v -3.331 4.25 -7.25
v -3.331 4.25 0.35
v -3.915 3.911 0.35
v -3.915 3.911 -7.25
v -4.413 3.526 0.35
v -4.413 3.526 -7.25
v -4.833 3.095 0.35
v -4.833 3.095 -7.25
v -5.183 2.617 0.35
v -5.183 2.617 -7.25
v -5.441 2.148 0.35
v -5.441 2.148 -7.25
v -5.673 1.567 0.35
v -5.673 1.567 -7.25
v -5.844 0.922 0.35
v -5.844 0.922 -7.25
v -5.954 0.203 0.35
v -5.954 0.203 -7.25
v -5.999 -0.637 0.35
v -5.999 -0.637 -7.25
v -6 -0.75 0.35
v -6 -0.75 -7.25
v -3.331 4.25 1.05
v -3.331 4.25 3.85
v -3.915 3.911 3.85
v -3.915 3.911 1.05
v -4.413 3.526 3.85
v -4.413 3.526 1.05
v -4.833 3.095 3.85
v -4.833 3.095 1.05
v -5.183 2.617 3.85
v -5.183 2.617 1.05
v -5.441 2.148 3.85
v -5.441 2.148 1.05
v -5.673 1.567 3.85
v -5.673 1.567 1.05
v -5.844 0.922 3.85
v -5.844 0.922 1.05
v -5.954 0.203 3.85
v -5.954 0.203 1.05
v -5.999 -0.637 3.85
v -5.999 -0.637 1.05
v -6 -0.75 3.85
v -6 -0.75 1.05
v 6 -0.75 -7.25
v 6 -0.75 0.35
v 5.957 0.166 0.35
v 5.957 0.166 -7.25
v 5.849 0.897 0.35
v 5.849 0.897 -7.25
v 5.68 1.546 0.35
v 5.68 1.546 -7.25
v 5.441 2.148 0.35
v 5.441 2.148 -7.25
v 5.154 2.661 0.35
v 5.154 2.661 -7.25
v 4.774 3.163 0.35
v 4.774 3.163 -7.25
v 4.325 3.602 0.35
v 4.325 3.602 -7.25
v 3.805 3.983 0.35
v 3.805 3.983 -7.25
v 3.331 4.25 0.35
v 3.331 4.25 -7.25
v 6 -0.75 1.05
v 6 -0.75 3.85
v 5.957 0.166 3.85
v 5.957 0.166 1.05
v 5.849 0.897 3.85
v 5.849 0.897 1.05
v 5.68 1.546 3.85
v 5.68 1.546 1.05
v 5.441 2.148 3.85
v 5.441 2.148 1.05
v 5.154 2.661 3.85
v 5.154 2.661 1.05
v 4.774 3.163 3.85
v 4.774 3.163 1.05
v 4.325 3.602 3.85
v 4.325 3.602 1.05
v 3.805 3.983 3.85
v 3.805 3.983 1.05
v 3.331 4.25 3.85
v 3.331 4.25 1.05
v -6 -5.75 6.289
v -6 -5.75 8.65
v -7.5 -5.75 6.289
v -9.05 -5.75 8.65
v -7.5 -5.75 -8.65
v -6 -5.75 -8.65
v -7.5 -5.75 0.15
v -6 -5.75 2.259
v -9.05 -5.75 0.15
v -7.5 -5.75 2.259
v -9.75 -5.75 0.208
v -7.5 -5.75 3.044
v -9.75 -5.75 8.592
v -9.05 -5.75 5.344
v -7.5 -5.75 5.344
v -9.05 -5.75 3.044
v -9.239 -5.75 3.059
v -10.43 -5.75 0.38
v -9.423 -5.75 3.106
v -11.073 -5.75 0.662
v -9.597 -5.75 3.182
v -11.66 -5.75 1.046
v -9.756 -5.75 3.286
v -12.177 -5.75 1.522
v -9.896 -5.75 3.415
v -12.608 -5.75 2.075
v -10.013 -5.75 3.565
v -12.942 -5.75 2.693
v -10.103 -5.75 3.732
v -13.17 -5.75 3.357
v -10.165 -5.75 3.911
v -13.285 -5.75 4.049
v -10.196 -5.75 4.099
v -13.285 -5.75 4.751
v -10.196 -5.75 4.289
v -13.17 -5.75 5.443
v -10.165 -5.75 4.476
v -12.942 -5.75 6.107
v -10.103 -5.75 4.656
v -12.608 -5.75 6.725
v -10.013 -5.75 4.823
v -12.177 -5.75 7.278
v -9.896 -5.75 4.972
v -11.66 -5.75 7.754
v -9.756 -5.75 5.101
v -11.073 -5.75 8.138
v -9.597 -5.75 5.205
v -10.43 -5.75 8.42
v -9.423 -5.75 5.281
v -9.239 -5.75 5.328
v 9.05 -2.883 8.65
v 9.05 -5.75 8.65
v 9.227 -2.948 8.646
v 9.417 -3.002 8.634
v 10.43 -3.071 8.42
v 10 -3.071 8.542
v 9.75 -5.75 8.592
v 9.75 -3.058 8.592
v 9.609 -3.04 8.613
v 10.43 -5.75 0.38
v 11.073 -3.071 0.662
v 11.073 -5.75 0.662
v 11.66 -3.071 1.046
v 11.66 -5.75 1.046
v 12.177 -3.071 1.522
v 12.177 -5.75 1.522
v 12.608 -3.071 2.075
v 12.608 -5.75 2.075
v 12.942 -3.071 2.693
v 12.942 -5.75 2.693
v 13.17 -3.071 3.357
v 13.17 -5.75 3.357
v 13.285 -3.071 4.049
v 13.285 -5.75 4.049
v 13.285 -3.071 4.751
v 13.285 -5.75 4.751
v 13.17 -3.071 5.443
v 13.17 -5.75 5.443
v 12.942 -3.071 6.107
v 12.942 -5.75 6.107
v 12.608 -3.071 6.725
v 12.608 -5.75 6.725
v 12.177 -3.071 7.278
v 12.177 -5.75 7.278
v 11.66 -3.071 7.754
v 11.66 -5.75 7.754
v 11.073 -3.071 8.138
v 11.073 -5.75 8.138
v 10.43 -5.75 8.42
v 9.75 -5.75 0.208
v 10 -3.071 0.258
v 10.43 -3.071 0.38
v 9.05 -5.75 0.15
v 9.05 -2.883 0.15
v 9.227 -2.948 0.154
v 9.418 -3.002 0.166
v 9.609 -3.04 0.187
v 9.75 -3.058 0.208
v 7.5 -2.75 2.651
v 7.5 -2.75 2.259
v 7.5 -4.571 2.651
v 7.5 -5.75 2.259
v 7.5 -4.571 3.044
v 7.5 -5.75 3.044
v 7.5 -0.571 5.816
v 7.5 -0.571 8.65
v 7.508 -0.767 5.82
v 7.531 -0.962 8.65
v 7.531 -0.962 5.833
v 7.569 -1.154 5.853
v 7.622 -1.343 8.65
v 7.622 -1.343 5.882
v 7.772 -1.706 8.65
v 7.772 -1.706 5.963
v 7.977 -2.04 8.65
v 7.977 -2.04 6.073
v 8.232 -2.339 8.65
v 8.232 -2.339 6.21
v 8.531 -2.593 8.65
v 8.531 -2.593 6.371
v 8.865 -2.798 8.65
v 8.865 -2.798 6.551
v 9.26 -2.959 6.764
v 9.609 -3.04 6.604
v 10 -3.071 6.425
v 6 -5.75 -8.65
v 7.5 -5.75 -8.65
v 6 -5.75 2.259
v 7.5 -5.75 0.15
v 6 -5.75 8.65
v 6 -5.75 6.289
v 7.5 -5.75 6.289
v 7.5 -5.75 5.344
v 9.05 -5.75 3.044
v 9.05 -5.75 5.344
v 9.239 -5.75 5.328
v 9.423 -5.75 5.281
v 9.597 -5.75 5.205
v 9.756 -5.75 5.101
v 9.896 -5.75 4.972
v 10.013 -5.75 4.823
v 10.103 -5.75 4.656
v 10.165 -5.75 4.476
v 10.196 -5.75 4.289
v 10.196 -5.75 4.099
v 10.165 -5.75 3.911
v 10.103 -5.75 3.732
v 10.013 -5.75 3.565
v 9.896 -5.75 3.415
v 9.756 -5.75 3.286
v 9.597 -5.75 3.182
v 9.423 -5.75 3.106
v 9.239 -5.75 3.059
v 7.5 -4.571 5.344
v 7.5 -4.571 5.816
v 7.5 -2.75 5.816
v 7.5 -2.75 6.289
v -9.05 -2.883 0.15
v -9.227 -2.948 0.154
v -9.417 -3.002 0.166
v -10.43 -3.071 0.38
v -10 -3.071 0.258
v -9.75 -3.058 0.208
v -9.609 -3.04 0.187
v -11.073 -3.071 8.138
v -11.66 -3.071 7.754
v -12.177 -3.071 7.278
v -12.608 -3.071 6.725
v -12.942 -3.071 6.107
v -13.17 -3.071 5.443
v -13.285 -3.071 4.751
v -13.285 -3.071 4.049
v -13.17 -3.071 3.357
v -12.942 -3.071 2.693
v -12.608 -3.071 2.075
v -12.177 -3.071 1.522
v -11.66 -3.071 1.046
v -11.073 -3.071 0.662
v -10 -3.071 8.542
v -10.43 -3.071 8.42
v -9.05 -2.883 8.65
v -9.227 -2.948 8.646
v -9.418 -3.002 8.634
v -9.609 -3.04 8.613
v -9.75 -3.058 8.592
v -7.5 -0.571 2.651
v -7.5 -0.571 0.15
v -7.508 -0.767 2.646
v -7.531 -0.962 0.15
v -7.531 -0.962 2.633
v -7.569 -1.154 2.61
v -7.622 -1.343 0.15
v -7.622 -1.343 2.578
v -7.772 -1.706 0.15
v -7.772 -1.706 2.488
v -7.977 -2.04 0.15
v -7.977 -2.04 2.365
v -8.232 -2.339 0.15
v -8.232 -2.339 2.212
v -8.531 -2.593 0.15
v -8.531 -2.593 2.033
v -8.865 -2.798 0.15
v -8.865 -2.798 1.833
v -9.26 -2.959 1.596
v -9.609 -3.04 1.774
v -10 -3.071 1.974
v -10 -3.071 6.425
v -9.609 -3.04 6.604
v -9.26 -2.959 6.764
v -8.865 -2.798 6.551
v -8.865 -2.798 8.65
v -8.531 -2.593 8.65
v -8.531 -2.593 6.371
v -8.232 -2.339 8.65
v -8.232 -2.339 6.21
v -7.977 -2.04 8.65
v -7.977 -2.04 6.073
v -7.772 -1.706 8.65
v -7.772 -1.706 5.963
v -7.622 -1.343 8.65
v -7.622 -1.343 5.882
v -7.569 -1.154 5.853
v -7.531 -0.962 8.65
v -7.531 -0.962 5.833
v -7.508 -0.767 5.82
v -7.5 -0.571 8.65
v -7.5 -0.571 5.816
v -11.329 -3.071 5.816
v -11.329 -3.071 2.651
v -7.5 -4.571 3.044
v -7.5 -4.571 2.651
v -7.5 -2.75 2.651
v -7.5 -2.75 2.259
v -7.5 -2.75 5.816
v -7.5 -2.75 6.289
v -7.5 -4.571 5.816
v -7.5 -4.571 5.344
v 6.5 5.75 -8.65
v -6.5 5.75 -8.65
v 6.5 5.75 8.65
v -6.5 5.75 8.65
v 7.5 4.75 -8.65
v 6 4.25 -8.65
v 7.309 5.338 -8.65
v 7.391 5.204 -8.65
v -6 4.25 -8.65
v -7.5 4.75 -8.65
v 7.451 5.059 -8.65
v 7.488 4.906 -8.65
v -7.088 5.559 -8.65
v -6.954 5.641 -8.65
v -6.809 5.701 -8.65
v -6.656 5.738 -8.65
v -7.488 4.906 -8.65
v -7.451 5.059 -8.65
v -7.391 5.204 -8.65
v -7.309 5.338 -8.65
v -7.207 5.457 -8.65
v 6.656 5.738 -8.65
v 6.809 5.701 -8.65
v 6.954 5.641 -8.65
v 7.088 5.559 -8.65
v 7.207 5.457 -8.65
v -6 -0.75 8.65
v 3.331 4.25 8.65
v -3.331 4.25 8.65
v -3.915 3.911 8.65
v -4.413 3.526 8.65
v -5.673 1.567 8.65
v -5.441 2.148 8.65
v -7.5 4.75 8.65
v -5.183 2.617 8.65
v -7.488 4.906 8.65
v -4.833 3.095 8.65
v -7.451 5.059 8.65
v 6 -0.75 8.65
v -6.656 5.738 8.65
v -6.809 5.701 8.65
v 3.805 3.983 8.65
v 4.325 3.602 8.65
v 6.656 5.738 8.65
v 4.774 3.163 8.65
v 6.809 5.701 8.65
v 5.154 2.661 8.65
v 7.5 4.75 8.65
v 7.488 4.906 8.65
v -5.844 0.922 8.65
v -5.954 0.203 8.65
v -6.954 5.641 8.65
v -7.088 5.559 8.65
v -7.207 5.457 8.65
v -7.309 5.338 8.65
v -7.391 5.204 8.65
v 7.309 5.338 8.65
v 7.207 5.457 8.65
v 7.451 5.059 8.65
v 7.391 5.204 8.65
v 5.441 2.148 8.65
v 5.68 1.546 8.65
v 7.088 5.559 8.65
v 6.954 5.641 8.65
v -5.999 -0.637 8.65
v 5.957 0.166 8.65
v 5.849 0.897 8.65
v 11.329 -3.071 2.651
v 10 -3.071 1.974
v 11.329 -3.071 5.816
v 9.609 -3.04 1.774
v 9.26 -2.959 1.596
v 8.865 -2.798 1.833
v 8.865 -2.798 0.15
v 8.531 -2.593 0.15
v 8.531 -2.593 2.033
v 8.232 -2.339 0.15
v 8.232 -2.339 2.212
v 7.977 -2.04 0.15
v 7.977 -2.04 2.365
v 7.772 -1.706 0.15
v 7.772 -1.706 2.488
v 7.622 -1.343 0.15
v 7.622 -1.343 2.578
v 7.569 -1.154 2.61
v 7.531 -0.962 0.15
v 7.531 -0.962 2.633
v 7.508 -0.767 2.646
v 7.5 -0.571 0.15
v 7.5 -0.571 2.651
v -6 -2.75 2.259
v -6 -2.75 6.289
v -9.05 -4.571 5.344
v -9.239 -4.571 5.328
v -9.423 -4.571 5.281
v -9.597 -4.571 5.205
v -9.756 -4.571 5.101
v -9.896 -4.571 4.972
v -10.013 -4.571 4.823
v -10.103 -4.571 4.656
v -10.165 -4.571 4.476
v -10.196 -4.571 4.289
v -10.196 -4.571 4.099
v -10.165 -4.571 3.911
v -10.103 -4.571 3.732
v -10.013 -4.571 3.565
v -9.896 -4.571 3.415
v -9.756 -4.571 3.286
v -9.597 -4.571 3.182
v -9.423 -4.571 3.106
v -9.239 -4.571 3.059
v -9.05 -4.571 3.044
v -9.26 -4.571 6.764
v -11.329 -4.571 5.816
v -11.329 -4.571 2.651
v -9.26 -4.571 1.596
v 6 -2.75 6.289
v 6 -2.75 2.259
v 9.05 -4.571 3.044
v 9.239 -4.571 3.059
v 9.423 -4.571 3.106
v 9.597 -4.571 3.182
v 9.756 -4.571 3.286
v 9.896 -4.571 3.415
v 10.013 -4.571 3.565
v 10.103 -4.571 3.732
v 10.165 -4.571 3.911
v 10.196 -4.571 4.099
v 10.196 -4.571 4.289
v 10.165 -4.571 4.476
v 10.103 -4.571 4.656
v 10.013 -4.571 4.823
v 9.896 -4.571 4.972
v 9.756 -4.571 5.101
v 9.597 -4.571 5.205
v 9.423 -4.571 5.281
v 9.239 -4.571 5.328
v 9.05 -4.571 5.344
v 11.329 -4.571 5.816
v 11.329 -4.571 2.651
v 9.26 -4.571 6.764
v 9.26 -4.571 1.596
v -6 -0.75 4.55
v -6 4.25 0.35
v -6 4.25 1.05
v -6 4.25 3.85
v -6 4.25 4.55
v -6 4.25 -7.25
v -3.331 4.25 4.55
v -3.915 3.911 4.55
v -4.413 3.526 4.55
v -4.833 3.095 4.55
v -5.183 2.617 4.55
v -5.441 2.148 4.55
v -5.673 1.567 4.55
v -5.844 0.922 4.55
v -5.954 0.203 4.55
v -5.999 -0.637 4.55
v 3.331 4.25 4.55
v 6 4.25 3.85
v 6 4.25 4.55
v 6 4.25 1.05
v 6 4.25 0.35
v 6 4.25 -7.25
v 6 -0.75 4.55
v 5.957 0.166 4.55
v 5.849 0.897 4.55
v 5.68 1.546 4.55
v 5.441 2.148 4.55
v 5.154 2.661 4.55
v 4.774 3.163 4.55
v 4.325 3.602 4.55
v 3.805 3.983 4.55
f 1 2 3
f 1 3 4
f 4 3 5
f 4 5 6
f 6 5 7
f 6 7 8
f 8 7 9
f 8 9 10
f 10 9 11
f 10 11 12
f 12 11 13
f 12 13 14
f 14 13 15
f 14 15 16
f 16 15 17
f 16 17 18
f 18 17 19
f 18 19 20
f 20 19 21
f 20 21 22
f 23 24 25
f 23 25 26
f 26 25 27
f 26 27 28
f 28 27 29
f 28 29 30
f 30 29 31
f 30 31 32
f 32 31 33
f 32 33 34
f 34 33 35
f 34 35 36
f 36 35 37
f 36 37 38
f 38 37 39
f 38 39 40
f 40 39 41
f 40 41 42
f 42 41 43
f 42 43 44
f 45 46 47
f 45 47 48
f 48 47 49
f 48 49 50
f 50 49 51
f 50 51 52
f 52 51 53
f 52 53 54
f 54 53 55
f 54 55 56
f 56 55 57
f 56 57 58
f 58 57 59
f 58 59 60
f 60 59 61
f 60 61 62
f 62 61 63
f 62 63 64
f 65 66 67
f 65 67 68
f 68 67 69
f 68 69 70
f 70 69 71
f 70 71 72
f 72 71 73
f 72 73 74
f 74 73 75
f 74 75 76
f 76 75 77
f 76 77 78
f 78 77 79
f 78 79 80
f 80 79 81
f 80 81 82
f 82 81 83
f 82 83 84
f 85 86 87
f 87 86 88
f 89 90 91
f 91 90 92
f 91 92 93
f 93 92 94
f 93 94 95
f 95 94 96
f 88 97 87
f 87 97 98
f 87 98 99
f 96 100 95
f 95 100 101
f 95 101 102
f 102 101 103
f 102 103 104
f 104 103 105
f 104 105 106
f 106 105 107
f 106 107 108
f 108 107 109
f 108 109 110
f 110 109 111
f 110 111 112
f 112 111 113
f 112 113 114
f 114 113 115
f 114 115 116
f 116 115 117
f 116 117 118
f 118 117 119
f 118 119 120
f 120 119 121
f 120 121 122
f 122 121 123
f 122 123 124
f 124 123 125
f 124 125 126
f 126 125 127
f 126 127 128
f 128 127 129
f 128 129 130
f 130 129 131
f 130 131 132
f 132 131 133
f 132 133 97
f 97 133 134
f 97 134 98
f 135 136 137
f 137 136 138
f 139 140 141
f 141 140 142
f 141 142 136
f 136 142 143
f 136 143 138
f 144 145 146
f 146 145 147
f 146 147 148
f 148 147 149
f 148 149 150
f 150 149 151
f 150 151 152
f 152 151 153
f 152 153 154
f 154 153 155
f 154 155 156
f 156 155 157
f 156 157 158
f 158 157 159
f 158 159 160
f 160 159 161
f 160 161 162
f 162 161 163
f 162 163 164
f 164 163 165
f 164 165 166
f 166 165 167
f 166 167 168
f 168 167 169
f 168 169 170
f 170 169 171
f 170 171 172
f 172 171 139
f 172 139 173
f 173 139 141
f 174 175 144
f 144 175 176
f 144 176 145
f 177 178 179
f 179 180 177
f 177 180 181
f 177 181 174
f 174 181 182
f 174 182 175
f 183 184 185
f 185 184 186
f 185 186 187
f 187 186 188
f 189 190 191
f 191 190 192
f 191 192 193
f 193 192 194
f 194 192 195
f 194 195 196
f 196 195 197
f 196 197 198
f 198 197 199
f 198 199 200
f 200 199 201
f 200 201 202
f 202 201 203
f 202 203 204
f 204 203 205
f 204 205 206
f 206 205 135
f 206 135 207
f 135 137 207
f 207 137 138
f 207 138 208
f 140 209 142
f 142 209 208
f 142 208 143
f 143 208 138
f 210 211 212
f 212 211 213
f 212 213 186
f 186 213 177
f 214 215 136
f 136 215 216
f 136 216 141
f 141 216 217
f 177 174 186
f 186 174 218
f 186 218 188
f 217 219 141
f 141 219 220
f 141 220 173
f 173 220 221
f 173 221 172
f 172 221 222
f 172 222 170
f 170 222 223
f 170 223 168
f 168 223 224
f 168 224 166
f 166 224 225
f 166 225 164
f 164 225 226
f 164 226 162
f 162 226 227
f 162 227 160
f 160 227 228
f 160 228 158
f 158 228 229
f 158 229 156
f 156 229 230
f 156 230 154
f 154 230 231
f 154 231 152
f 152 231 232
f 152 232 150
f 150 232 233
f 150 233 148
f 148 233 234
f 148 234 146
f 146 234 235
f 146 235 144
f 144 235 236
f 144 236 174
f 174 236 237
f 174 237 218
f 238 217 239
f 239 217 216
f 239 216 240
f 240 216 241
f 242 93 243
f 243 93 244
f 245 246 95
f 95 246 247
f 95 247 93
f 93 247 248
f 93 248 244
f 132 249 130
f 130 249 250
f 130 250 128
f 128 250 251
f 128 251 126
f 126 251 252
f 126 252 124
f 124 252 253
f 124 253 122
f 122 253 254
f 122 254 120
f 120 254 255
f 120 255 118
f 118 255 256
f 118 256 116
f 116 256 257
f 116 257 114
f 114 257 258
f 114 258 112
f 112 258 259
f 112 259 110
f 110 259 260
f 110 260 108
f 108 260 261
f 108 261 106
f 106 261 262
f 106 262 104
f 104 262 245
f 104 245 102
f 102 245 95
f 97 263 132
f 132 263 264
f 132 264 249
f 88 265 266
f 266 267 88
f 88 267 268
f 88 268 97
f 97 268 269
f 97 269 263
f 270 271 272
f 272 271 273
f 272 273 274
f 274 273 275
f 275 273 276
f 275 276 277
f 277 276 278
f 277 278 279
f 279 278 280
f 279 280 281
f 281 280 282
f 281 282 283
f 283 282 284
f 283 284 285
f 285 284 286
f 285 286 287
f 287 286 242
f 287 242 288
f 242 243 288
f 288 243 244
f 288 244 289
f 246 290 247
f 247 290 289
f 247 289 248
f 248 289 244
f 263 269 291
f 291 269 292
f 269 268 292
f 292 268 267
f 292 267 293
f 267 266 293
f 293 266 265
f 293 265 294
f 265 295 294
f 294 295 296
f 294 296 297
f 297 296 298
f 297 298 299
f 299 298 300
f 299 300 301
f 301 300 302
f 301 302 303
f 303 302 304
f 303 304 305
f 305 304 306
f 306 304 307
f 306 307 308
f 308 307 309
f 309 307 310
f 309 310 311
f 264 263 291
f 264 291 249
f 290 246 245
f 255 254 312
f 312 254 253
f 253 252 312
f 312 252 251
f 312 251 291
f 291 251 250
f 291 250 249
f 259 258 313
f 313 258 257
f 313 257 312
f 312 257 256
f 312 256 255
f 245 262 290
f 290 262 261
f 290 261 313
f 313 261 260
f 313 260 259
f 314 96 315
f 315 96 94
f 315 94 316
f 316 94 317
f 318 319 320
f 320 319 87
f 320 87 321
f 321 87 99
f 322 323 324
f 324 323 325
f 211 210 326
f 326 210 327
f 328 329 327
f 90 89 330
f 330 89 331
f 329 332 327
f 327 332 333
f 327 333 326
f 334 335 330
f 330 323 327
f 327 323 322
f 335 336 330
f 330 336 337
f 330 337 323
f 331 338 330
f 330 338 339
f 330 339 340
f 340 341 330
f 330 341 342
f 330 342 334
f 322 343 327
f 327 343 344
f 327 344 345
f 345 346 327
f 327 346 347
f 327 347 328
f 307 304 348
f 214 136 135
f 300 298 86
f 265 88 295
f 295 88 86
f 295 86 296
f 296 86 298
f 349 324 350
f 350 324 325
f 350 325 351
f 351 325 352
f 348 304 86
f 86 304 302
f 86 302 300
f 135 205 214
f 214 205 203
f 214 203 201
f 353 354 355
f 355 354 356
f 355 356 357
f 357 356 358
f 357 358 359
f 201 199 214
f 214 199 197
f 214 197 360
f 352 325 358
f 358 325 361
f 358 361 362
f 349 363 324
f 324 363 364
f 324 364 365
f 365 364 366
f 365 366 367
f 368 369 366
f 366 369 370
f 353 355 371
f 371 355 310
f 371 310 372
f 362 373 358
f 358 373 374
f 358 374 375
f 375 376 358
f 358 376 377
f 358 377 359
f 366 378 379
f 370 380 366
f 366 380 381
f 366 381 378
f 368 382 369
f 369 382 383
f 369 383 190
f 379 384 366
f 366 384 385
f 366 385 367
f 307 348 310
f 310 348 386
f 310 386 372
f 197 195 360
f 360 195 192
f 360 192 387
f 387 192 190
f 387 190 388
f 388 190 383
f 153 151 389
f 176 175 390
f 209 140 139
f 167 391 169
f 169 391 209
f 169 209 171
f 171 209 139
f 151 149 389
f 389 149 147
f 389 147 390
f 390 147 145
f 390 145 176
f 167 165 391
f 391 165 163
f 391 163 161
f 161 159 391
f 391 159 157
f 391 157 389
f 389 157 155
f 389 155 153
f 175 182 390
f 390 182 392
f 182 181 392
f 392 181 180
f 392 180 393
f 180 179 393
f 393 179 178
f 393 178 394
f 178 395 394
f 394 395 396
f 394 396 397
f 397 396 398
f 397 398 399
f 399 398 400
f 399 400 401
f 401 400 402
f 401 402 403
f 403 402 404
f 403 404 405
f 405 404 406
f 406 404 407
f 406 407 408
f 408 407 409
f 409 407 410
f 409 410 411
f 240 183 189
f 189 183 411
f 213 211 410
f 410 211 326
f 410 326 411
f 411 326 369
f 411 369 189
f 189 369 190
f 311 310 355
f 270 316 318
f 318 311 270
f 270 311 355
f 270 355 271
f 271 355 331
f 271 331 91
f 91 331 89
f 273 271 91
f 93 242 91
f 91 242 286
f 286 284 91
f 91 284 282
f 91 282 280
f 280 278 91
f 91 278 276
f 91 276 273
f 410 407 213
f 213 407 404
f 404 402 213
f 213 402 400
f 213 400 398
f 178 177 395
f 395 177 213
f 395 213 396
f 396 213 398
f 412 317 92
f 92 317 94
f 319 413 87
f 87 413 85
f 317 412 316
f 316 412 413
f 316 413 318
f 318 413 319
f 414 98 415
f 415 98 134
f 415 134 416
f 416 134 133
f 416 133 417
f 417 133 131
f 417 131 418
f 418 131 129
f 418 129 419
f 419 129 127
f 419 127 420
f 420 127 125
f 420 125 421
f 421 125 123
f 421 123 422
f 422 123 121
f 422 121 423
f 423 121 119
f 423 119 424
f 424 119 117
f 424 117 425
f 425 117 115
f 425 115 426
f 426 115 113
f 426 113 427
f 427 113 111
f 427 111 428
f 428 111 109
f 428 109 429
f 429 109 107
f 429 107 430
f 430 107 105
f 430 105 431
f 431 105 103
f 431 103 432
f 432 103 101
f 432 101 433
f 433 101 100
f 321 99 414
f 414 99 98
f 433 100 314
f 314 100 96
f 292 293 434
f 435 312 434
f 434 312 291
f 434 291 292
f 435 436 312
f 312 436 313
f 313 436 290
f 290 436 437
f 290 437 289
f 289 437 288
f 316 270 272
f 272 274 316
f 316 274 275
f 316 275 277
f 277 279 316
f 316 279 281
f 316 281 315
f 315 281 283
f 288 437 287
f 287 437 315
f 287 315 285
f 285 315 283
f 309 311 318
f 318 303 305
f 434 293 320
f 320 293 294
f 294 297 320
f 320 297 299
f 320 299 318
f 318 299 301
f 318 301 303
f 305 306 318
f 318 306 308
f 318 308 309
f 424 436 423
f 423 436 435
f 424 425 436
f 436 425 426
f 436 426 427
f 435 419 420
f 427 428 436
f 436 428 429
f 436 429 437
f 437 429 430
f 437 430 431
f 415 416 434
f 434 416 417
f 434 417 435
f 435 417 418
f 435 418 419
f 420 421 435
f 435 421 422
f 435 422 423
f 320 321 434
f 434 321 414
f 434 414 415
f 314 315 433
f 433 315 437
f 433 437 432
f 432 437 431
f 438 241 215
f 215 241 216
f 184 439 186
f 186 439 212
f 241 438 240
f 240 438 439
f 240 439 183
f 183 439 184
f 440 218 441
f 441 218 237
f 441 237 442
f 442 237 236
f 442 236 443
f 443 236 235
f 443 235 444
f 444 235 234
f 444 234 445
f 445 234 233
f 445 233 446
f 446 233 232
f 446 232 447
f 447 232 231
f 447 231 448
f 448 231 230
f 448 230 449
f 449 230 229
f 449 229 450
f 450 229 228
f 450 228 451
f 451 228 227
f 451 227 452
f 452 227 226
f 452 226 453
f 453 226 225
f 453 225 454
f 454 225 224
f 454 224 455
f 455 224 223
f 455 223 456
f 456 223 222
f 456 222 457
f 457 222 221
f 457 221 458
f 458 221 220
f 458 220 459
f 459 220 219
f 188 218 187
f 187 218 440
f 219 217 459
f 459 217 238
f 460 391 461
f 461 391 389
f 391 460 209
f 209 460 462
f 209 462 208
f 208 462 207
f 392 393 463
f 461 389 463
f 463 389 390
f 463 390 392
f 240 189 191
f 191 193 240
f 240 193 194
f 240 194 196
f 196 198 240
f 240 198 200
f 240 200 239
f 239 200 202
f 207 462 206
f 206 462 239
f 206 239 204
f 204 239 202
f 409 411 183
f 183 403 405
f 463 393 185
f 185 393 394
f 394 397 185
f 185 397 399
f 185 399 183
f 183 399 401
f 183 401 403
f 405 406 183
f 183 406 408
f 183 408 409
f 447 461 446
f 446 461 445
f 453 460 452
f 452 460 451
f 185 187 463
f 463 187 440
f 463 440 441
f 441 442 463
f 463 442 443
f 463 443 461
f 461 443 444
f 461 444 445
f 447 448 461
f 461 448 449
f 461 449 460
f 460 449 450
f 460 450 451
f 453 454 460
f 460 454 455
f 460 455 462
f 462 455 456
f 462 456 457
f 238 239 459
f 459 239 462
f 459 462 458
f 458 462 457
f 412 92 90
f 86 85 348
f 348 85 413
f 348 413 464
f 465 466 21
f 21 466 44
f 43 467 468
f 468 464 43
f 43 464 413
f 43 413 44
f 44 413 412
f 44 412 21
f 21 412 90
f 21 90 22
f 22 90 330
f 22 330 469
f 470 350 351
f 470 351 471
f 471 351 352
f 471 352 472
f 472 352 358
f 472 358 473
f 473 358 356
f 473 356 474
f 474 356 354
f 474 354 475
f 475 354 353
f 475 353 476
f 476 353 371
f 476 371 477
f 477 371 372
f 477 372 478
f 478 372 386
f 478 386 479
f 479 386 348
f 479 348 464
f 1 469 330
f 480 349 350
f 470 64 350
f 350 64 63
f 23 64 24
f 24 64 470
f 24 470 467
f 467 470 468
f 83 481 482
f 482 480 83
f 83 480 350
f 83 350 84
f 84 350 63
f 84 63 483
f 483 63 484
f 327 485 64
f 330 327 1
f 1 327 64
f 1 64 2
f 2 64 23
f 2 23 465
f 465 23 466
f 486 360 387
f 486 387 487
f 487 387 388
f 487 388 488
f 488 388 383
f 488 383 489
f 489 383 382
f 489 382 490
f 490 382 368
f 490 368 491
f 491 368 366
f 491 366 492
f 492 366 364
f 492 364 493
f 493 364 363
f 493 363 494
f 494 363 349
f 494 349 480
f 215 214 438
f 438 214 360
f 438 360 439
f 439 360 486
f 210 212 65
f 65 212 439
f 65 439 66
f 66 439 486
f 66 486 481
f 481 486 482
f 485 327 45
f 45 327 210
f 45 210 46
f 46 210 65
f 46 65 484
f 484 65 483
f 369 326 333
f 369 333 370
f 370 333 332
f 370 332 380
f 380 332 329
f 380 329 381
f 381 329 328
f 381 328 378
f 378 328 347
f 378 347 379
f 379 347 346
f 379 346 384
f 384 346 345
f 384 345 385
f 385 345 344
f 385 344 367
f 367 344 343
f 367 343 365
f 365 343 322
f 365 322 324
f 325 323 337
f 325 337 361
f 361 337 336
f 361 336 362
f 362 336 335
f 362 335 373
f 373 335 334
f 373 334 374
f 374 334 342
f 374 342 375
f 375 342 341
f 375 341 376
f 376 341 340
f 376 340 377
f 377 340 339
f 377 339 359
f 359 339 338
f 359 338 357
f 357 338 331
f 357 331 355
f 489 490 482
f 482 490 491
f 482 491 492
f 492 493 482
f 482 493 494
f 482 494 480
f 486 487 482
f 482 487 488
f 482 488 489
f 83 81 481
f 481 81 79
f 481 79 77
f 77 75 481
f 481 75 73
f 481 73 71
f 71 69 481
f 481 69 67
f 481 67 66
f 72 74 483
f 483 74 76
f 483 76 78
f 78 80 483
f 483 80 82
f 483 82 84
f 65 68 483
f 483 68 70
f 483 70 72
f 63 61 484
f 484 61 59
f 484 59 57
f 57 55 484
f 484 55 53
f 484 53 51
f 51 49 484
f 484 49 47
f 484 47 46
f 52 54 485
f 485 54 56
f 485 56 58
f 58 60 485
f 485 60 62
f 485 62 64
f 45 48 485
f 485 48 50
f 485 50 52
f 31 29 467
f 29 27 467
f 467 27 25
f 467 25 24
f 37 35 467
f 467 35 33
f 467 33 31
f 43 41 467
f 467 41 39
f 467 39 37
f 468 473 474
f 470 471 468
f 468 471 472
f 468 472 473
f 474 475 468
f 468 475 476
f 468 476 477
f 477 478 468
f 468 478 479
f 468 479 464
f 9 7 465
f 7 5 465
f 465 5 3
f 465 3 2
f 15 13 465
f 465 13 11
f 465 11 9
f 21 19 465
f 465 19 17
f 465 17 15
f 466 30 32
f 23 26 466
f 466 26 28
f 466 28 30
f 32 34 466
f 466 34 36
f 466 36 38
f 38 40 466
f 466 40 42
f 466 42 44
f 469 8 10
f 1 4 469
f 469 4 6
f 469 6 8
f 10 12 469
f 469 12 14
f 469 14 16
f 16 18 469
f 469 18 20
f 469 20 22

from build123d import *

# Parameters (mm, degrees)
BOSS_EXTRUDE1_DEPTH      = 8.65
BOSS_EXTRUDE1_DEPTH_BACK = 8.65
SKETCH2_W                = 26.6
SKETCH2_H                = 11.5
CUT_EXTRUDE1_DEPTH       = 23.566402017
SKETCH4_W                = 5.8
SKETCH4_H                = 8.8
CUT_EXTRUDE2_DEPTH       = 20.594961087
SKETCH5_W                = 1.5
SKETCH5_H                = 4.03
CUT_EXTRUDE3_DEPTH       = 3
CUT_EXTRUDE4_DEPTH       = 1.4
CUT_EXTRUDE5_START       = -5.1792
CUT_EXTRUDE5_DEPTH       = 4
FILLET3_START            = -7
FILLET3_DEPTH            = 6.429203884
FILLET4_START            = -7
FILLET4_DEPTH            = 6.429203884
CUT_EXTRUDE6_DEPTH       = 23.566402102
FILLET5_R                = 1
SKETCH12_W               = 12
SKETCH12_H               = 1.4
SKETCH12_H_2             = 0.7
CUT_EXTRUDE7_DEPTH       = 10


with BuildPart() as part:
    # Sketch2 → Boss-Extrude1 (new, two sides: drawn at the far end of the back side and taken through both)
    with BuildSketch(Plane.XY.offset(-BOSS_EXTRUDE1_DEPTH_BACK)):
        Rectangle(SKETCH2_W, SKETCH2_H)
    extrude(amount=BOSS_EXTRUDE1_DEPTH + BOSS_EXTRUDE1_DEPTH_BACK)

    # Sketch3 → Cut-Extrude1 (cut, through all)
    with BuildSketch(Plane.XY.offset(8.65)):
        with BuildLine():
            Line((-7.5, 5.75), (-7.5, -0.570796116))
            ThreePointArc((-7.5, -0.570796116), (-8.232233047, -2.338563069), (-10, -3.070796116))
            Line((-10, -3.070796116), (-13.3, -3.070796116))
            Line((-13.3, -3.070796116), (-13.3, 5.75))
            Line((-13.3, 5.75), (-7.5, 5.75))
        make_face()
        with BuildLine():
            Line((7.5, 5.75), (7.5, -0.570796116))
            ThreePointArc((7.5, -0.570796116), (8.232233047, -2.338563069), (10, -3.070796116))
            Line((10, -3.070796116), (13.3, -3.070796116))
            Line((13.3, -3.070796116), (13.3, 5.75))
            Line((13.3, 5.75), (7.5, 5.75))
        make_face()
    extrude(amount=-CUT_EXTRUDE1_DEPTH, mode=Mode.SUBTRACT)

    # Sketch4 → Cut-Extrude2 (cut, through all)
    with BuildSketch(Plane.XZ.offset(5.75)):
        with Locations((-10.4, -4.25)):
            Rectangle(SKETCH4_W, SKETCH4_H)
        with Locations((10.4, -4.25)):
            Rectangle(SKETCH4_W, SKETCH4_H)
    extrude(amount=-CUT_EXTRUDE2_DEPTH, mode=Mode.SUBTRACT)

    # Sketch5 → Cut-Extrude3 (cut)
    with BuildSketch(Plane.XZ.offset(5.75)):
        with Locations((-6.75, 4.27363419)):
            Rectangle(SKETCH5_W, SKETCH5_H)
    cut_extrude3 = extrude(amount=-CUT_EXTRUDE3_DEPTH, mode=Mode.SUBTRACT)

    # Sketch5<3> → Cut-Extrude4 (cut)
    with BuildSketch(Plane.XZ.offset(5.75)):
        with BuildLine():
            ThreePointArc((-9.05, 3.04359822), (-10.2, 4.19359822), (-9.05, 5.34359822))
            Line((-9.05, 5.34359822), (-7.5, 5.34359822))
            Line((-7.5, 5.34359822), (-7.5, 3.04359822))
            Line((-7.5, 3.04359822), (-9.05, 3.04359822))
        make_face()
    cut_extrude4 = extrude(amount=-CUT_EXTRUDE4_DEPTH, mode=Mode.SUBTRACT)

    # Sketch8 → Cut-Extrude5 (cut)
    with BuildSketch(Plane.XZ.offset(5.75).offset(CUT_EXTRUDE5_START)):
        Polygon((-11.329479063, 5.816116205), (-11.329479063, 2.651116205), (-9.259735425, 1.596272871), (-7.5, 2.651116205), (-7.5, 5.816116205), (-9.259735425, 6.763868097), align=None)
    cut_extrude5 = extrude(amount=CUT_EXTRUDE5_DEPTH, mode=Mode.SUBTRACT)

    # Fillet3: read off the stored shape, not the designer's step
    # Fillet3 outline → Fillet3 (cut)
    with BuildSketch(Plane(origin=(0, 0, 0), x_dir=(1, 0, 0), z_dir=(0, 1, 0)).offset(FILLET3_START)):
        with BuildLine():
            Line((-13.3, -8.65), (-9.05, -8.65))
            ThreePointArc((-9.05, -8.65), (-12.05520382, -7.40520382), (-13.3, -4.4))
            Line((-13.3, -4.4), (-13.3, -8.65))
        make_face()
        with BuildLine():
            Line((-13.3, -0.15), (-13.3, -4.4))
            ThreePointArc((-13.3, -4.4), (-12.05520382, -1.39479618), (-9.05, -0.15))
            Line((-9.05, -0.15), (-13.3, -0.15))
        make_face()
    extrude(amount=FILLET3_DEPTH, mode=Mode.SUBTRACT)

    # Mirror4: Cut-Extrude3, Cut-Extrude4, Cut-Extrude5 across plane
    add(cut_extrude3.mirror(Plane(origin=(0, 0, 0), x_dir=(0, 0, 1), z_dir=(1, 0, 0))), mode=Mode.SUBTRACT)
    add(cut_extrude4.mirror(Plane(origin=(0, 0, 0), x_dir=(0, 0, 1), z_dir=(1, 0, 0))), mode=Mode.SUBTRACT)
    add(cut_extrude5.mirror(Plane(origin=(0, 0, 0), x_dir=(0, 0, 1), z_dir=(1, 0, 0))), mode=Mode.SUBTRACT)

    # Fillet4: read off the stored shape, not the designer's step
    # Fillet4 outline → Fillet4 (cut)
    with BuildSketch(Plane(origin=(0, 0, 0), x_dir=(1, 0, 0), z_dir=(0, 1, 0)).offset(FILLET4_START)):
        with BuildLine():
            Line((13.3, -0.15), (9.05, -0.15))
            ThreePointArc((9.05, -0.15), (12.05520382, -1.39479618), (13.3, -4.4))
            Line((13.3, -4.4), (13.3, -0.15))
        make_face()
        with BuildLine():
            Line((13.3, -8.65), (13.3, -4.4))
            ThreePointArc((13.3, -4.4), (12.05520382, -7.40520382), (9.049999999, -8.65))
            Line((9.049999999, -8.65), (13.3, -8.65))
        make_face()
    extrude(amount=FILLET4_DEPTH, mode=Mode.SUBTRACT)

    # Sketch10 → Cut-Extrude6 (cut, through all)
    with BuildSketch(Plane.XY.offset(8.65)):
        with BuildLine():
            Line((-6, -5.75), (6, -5.75))
            Line((6, -5.75), (6, -0.75))
            add(Edge.make_bspline(
                [(6, -0.75), (6, 1.34228193), (5.397693539, 3.219717328), (3.331465755, 4.25)],
                knots=[0, 0, 0, 0, 1, 1, 1, 1], degree=3))
            Line((3.331465755, 4.25), (3.297244701, 4.25))
            Line((3.297244701, 4.25), (-3.331465755, 4.25))
            add(Edge.make_bspline(
                [(-6, -0.75), (-6, 1.34228193), (-5.397693539, 3.219717328), (-3.331465755, 4.25)],
                knots=[0, 0, 0, 0, 1, 1, 1, 1], degree=3))
            Line((-6, -0.75), (-6, -5.75))
        make_face()
    extrude(amount=-CUT_EXTRUDE6_DEPTH, mode=Mode.SUBTRACT)

    # Fillet5
    fillet5_edges = [part.edges().sort_by_distance(p)[0] for p in [
        (-7.5, 5.75, 0),
        (7.5, 5.75, 0),
    ]]
    fillet(fillet5_edges, radius=FILLET5_R)

    # Sketch12 → Cut-Extrude7 (cut)
    with BuildSketch(Plane.XZ.offset(5.75)):
        with Locations((0, -7.95)):
            Rectangle(SKETCH12_W, SKETCH12_H)
        with Locations((0, 0.7)):
            Rectangle(SKETCH12_W, SKETCH12_H_2)
        with Locations((0, 4.2)):
            Rectangle(SKETCH12_W, SKETCH12_H_2)
    extrude(amount=-CUT_EXTRUDE7_DEPTH, mode=Mode.SUBTRACT)


solid = part.part
